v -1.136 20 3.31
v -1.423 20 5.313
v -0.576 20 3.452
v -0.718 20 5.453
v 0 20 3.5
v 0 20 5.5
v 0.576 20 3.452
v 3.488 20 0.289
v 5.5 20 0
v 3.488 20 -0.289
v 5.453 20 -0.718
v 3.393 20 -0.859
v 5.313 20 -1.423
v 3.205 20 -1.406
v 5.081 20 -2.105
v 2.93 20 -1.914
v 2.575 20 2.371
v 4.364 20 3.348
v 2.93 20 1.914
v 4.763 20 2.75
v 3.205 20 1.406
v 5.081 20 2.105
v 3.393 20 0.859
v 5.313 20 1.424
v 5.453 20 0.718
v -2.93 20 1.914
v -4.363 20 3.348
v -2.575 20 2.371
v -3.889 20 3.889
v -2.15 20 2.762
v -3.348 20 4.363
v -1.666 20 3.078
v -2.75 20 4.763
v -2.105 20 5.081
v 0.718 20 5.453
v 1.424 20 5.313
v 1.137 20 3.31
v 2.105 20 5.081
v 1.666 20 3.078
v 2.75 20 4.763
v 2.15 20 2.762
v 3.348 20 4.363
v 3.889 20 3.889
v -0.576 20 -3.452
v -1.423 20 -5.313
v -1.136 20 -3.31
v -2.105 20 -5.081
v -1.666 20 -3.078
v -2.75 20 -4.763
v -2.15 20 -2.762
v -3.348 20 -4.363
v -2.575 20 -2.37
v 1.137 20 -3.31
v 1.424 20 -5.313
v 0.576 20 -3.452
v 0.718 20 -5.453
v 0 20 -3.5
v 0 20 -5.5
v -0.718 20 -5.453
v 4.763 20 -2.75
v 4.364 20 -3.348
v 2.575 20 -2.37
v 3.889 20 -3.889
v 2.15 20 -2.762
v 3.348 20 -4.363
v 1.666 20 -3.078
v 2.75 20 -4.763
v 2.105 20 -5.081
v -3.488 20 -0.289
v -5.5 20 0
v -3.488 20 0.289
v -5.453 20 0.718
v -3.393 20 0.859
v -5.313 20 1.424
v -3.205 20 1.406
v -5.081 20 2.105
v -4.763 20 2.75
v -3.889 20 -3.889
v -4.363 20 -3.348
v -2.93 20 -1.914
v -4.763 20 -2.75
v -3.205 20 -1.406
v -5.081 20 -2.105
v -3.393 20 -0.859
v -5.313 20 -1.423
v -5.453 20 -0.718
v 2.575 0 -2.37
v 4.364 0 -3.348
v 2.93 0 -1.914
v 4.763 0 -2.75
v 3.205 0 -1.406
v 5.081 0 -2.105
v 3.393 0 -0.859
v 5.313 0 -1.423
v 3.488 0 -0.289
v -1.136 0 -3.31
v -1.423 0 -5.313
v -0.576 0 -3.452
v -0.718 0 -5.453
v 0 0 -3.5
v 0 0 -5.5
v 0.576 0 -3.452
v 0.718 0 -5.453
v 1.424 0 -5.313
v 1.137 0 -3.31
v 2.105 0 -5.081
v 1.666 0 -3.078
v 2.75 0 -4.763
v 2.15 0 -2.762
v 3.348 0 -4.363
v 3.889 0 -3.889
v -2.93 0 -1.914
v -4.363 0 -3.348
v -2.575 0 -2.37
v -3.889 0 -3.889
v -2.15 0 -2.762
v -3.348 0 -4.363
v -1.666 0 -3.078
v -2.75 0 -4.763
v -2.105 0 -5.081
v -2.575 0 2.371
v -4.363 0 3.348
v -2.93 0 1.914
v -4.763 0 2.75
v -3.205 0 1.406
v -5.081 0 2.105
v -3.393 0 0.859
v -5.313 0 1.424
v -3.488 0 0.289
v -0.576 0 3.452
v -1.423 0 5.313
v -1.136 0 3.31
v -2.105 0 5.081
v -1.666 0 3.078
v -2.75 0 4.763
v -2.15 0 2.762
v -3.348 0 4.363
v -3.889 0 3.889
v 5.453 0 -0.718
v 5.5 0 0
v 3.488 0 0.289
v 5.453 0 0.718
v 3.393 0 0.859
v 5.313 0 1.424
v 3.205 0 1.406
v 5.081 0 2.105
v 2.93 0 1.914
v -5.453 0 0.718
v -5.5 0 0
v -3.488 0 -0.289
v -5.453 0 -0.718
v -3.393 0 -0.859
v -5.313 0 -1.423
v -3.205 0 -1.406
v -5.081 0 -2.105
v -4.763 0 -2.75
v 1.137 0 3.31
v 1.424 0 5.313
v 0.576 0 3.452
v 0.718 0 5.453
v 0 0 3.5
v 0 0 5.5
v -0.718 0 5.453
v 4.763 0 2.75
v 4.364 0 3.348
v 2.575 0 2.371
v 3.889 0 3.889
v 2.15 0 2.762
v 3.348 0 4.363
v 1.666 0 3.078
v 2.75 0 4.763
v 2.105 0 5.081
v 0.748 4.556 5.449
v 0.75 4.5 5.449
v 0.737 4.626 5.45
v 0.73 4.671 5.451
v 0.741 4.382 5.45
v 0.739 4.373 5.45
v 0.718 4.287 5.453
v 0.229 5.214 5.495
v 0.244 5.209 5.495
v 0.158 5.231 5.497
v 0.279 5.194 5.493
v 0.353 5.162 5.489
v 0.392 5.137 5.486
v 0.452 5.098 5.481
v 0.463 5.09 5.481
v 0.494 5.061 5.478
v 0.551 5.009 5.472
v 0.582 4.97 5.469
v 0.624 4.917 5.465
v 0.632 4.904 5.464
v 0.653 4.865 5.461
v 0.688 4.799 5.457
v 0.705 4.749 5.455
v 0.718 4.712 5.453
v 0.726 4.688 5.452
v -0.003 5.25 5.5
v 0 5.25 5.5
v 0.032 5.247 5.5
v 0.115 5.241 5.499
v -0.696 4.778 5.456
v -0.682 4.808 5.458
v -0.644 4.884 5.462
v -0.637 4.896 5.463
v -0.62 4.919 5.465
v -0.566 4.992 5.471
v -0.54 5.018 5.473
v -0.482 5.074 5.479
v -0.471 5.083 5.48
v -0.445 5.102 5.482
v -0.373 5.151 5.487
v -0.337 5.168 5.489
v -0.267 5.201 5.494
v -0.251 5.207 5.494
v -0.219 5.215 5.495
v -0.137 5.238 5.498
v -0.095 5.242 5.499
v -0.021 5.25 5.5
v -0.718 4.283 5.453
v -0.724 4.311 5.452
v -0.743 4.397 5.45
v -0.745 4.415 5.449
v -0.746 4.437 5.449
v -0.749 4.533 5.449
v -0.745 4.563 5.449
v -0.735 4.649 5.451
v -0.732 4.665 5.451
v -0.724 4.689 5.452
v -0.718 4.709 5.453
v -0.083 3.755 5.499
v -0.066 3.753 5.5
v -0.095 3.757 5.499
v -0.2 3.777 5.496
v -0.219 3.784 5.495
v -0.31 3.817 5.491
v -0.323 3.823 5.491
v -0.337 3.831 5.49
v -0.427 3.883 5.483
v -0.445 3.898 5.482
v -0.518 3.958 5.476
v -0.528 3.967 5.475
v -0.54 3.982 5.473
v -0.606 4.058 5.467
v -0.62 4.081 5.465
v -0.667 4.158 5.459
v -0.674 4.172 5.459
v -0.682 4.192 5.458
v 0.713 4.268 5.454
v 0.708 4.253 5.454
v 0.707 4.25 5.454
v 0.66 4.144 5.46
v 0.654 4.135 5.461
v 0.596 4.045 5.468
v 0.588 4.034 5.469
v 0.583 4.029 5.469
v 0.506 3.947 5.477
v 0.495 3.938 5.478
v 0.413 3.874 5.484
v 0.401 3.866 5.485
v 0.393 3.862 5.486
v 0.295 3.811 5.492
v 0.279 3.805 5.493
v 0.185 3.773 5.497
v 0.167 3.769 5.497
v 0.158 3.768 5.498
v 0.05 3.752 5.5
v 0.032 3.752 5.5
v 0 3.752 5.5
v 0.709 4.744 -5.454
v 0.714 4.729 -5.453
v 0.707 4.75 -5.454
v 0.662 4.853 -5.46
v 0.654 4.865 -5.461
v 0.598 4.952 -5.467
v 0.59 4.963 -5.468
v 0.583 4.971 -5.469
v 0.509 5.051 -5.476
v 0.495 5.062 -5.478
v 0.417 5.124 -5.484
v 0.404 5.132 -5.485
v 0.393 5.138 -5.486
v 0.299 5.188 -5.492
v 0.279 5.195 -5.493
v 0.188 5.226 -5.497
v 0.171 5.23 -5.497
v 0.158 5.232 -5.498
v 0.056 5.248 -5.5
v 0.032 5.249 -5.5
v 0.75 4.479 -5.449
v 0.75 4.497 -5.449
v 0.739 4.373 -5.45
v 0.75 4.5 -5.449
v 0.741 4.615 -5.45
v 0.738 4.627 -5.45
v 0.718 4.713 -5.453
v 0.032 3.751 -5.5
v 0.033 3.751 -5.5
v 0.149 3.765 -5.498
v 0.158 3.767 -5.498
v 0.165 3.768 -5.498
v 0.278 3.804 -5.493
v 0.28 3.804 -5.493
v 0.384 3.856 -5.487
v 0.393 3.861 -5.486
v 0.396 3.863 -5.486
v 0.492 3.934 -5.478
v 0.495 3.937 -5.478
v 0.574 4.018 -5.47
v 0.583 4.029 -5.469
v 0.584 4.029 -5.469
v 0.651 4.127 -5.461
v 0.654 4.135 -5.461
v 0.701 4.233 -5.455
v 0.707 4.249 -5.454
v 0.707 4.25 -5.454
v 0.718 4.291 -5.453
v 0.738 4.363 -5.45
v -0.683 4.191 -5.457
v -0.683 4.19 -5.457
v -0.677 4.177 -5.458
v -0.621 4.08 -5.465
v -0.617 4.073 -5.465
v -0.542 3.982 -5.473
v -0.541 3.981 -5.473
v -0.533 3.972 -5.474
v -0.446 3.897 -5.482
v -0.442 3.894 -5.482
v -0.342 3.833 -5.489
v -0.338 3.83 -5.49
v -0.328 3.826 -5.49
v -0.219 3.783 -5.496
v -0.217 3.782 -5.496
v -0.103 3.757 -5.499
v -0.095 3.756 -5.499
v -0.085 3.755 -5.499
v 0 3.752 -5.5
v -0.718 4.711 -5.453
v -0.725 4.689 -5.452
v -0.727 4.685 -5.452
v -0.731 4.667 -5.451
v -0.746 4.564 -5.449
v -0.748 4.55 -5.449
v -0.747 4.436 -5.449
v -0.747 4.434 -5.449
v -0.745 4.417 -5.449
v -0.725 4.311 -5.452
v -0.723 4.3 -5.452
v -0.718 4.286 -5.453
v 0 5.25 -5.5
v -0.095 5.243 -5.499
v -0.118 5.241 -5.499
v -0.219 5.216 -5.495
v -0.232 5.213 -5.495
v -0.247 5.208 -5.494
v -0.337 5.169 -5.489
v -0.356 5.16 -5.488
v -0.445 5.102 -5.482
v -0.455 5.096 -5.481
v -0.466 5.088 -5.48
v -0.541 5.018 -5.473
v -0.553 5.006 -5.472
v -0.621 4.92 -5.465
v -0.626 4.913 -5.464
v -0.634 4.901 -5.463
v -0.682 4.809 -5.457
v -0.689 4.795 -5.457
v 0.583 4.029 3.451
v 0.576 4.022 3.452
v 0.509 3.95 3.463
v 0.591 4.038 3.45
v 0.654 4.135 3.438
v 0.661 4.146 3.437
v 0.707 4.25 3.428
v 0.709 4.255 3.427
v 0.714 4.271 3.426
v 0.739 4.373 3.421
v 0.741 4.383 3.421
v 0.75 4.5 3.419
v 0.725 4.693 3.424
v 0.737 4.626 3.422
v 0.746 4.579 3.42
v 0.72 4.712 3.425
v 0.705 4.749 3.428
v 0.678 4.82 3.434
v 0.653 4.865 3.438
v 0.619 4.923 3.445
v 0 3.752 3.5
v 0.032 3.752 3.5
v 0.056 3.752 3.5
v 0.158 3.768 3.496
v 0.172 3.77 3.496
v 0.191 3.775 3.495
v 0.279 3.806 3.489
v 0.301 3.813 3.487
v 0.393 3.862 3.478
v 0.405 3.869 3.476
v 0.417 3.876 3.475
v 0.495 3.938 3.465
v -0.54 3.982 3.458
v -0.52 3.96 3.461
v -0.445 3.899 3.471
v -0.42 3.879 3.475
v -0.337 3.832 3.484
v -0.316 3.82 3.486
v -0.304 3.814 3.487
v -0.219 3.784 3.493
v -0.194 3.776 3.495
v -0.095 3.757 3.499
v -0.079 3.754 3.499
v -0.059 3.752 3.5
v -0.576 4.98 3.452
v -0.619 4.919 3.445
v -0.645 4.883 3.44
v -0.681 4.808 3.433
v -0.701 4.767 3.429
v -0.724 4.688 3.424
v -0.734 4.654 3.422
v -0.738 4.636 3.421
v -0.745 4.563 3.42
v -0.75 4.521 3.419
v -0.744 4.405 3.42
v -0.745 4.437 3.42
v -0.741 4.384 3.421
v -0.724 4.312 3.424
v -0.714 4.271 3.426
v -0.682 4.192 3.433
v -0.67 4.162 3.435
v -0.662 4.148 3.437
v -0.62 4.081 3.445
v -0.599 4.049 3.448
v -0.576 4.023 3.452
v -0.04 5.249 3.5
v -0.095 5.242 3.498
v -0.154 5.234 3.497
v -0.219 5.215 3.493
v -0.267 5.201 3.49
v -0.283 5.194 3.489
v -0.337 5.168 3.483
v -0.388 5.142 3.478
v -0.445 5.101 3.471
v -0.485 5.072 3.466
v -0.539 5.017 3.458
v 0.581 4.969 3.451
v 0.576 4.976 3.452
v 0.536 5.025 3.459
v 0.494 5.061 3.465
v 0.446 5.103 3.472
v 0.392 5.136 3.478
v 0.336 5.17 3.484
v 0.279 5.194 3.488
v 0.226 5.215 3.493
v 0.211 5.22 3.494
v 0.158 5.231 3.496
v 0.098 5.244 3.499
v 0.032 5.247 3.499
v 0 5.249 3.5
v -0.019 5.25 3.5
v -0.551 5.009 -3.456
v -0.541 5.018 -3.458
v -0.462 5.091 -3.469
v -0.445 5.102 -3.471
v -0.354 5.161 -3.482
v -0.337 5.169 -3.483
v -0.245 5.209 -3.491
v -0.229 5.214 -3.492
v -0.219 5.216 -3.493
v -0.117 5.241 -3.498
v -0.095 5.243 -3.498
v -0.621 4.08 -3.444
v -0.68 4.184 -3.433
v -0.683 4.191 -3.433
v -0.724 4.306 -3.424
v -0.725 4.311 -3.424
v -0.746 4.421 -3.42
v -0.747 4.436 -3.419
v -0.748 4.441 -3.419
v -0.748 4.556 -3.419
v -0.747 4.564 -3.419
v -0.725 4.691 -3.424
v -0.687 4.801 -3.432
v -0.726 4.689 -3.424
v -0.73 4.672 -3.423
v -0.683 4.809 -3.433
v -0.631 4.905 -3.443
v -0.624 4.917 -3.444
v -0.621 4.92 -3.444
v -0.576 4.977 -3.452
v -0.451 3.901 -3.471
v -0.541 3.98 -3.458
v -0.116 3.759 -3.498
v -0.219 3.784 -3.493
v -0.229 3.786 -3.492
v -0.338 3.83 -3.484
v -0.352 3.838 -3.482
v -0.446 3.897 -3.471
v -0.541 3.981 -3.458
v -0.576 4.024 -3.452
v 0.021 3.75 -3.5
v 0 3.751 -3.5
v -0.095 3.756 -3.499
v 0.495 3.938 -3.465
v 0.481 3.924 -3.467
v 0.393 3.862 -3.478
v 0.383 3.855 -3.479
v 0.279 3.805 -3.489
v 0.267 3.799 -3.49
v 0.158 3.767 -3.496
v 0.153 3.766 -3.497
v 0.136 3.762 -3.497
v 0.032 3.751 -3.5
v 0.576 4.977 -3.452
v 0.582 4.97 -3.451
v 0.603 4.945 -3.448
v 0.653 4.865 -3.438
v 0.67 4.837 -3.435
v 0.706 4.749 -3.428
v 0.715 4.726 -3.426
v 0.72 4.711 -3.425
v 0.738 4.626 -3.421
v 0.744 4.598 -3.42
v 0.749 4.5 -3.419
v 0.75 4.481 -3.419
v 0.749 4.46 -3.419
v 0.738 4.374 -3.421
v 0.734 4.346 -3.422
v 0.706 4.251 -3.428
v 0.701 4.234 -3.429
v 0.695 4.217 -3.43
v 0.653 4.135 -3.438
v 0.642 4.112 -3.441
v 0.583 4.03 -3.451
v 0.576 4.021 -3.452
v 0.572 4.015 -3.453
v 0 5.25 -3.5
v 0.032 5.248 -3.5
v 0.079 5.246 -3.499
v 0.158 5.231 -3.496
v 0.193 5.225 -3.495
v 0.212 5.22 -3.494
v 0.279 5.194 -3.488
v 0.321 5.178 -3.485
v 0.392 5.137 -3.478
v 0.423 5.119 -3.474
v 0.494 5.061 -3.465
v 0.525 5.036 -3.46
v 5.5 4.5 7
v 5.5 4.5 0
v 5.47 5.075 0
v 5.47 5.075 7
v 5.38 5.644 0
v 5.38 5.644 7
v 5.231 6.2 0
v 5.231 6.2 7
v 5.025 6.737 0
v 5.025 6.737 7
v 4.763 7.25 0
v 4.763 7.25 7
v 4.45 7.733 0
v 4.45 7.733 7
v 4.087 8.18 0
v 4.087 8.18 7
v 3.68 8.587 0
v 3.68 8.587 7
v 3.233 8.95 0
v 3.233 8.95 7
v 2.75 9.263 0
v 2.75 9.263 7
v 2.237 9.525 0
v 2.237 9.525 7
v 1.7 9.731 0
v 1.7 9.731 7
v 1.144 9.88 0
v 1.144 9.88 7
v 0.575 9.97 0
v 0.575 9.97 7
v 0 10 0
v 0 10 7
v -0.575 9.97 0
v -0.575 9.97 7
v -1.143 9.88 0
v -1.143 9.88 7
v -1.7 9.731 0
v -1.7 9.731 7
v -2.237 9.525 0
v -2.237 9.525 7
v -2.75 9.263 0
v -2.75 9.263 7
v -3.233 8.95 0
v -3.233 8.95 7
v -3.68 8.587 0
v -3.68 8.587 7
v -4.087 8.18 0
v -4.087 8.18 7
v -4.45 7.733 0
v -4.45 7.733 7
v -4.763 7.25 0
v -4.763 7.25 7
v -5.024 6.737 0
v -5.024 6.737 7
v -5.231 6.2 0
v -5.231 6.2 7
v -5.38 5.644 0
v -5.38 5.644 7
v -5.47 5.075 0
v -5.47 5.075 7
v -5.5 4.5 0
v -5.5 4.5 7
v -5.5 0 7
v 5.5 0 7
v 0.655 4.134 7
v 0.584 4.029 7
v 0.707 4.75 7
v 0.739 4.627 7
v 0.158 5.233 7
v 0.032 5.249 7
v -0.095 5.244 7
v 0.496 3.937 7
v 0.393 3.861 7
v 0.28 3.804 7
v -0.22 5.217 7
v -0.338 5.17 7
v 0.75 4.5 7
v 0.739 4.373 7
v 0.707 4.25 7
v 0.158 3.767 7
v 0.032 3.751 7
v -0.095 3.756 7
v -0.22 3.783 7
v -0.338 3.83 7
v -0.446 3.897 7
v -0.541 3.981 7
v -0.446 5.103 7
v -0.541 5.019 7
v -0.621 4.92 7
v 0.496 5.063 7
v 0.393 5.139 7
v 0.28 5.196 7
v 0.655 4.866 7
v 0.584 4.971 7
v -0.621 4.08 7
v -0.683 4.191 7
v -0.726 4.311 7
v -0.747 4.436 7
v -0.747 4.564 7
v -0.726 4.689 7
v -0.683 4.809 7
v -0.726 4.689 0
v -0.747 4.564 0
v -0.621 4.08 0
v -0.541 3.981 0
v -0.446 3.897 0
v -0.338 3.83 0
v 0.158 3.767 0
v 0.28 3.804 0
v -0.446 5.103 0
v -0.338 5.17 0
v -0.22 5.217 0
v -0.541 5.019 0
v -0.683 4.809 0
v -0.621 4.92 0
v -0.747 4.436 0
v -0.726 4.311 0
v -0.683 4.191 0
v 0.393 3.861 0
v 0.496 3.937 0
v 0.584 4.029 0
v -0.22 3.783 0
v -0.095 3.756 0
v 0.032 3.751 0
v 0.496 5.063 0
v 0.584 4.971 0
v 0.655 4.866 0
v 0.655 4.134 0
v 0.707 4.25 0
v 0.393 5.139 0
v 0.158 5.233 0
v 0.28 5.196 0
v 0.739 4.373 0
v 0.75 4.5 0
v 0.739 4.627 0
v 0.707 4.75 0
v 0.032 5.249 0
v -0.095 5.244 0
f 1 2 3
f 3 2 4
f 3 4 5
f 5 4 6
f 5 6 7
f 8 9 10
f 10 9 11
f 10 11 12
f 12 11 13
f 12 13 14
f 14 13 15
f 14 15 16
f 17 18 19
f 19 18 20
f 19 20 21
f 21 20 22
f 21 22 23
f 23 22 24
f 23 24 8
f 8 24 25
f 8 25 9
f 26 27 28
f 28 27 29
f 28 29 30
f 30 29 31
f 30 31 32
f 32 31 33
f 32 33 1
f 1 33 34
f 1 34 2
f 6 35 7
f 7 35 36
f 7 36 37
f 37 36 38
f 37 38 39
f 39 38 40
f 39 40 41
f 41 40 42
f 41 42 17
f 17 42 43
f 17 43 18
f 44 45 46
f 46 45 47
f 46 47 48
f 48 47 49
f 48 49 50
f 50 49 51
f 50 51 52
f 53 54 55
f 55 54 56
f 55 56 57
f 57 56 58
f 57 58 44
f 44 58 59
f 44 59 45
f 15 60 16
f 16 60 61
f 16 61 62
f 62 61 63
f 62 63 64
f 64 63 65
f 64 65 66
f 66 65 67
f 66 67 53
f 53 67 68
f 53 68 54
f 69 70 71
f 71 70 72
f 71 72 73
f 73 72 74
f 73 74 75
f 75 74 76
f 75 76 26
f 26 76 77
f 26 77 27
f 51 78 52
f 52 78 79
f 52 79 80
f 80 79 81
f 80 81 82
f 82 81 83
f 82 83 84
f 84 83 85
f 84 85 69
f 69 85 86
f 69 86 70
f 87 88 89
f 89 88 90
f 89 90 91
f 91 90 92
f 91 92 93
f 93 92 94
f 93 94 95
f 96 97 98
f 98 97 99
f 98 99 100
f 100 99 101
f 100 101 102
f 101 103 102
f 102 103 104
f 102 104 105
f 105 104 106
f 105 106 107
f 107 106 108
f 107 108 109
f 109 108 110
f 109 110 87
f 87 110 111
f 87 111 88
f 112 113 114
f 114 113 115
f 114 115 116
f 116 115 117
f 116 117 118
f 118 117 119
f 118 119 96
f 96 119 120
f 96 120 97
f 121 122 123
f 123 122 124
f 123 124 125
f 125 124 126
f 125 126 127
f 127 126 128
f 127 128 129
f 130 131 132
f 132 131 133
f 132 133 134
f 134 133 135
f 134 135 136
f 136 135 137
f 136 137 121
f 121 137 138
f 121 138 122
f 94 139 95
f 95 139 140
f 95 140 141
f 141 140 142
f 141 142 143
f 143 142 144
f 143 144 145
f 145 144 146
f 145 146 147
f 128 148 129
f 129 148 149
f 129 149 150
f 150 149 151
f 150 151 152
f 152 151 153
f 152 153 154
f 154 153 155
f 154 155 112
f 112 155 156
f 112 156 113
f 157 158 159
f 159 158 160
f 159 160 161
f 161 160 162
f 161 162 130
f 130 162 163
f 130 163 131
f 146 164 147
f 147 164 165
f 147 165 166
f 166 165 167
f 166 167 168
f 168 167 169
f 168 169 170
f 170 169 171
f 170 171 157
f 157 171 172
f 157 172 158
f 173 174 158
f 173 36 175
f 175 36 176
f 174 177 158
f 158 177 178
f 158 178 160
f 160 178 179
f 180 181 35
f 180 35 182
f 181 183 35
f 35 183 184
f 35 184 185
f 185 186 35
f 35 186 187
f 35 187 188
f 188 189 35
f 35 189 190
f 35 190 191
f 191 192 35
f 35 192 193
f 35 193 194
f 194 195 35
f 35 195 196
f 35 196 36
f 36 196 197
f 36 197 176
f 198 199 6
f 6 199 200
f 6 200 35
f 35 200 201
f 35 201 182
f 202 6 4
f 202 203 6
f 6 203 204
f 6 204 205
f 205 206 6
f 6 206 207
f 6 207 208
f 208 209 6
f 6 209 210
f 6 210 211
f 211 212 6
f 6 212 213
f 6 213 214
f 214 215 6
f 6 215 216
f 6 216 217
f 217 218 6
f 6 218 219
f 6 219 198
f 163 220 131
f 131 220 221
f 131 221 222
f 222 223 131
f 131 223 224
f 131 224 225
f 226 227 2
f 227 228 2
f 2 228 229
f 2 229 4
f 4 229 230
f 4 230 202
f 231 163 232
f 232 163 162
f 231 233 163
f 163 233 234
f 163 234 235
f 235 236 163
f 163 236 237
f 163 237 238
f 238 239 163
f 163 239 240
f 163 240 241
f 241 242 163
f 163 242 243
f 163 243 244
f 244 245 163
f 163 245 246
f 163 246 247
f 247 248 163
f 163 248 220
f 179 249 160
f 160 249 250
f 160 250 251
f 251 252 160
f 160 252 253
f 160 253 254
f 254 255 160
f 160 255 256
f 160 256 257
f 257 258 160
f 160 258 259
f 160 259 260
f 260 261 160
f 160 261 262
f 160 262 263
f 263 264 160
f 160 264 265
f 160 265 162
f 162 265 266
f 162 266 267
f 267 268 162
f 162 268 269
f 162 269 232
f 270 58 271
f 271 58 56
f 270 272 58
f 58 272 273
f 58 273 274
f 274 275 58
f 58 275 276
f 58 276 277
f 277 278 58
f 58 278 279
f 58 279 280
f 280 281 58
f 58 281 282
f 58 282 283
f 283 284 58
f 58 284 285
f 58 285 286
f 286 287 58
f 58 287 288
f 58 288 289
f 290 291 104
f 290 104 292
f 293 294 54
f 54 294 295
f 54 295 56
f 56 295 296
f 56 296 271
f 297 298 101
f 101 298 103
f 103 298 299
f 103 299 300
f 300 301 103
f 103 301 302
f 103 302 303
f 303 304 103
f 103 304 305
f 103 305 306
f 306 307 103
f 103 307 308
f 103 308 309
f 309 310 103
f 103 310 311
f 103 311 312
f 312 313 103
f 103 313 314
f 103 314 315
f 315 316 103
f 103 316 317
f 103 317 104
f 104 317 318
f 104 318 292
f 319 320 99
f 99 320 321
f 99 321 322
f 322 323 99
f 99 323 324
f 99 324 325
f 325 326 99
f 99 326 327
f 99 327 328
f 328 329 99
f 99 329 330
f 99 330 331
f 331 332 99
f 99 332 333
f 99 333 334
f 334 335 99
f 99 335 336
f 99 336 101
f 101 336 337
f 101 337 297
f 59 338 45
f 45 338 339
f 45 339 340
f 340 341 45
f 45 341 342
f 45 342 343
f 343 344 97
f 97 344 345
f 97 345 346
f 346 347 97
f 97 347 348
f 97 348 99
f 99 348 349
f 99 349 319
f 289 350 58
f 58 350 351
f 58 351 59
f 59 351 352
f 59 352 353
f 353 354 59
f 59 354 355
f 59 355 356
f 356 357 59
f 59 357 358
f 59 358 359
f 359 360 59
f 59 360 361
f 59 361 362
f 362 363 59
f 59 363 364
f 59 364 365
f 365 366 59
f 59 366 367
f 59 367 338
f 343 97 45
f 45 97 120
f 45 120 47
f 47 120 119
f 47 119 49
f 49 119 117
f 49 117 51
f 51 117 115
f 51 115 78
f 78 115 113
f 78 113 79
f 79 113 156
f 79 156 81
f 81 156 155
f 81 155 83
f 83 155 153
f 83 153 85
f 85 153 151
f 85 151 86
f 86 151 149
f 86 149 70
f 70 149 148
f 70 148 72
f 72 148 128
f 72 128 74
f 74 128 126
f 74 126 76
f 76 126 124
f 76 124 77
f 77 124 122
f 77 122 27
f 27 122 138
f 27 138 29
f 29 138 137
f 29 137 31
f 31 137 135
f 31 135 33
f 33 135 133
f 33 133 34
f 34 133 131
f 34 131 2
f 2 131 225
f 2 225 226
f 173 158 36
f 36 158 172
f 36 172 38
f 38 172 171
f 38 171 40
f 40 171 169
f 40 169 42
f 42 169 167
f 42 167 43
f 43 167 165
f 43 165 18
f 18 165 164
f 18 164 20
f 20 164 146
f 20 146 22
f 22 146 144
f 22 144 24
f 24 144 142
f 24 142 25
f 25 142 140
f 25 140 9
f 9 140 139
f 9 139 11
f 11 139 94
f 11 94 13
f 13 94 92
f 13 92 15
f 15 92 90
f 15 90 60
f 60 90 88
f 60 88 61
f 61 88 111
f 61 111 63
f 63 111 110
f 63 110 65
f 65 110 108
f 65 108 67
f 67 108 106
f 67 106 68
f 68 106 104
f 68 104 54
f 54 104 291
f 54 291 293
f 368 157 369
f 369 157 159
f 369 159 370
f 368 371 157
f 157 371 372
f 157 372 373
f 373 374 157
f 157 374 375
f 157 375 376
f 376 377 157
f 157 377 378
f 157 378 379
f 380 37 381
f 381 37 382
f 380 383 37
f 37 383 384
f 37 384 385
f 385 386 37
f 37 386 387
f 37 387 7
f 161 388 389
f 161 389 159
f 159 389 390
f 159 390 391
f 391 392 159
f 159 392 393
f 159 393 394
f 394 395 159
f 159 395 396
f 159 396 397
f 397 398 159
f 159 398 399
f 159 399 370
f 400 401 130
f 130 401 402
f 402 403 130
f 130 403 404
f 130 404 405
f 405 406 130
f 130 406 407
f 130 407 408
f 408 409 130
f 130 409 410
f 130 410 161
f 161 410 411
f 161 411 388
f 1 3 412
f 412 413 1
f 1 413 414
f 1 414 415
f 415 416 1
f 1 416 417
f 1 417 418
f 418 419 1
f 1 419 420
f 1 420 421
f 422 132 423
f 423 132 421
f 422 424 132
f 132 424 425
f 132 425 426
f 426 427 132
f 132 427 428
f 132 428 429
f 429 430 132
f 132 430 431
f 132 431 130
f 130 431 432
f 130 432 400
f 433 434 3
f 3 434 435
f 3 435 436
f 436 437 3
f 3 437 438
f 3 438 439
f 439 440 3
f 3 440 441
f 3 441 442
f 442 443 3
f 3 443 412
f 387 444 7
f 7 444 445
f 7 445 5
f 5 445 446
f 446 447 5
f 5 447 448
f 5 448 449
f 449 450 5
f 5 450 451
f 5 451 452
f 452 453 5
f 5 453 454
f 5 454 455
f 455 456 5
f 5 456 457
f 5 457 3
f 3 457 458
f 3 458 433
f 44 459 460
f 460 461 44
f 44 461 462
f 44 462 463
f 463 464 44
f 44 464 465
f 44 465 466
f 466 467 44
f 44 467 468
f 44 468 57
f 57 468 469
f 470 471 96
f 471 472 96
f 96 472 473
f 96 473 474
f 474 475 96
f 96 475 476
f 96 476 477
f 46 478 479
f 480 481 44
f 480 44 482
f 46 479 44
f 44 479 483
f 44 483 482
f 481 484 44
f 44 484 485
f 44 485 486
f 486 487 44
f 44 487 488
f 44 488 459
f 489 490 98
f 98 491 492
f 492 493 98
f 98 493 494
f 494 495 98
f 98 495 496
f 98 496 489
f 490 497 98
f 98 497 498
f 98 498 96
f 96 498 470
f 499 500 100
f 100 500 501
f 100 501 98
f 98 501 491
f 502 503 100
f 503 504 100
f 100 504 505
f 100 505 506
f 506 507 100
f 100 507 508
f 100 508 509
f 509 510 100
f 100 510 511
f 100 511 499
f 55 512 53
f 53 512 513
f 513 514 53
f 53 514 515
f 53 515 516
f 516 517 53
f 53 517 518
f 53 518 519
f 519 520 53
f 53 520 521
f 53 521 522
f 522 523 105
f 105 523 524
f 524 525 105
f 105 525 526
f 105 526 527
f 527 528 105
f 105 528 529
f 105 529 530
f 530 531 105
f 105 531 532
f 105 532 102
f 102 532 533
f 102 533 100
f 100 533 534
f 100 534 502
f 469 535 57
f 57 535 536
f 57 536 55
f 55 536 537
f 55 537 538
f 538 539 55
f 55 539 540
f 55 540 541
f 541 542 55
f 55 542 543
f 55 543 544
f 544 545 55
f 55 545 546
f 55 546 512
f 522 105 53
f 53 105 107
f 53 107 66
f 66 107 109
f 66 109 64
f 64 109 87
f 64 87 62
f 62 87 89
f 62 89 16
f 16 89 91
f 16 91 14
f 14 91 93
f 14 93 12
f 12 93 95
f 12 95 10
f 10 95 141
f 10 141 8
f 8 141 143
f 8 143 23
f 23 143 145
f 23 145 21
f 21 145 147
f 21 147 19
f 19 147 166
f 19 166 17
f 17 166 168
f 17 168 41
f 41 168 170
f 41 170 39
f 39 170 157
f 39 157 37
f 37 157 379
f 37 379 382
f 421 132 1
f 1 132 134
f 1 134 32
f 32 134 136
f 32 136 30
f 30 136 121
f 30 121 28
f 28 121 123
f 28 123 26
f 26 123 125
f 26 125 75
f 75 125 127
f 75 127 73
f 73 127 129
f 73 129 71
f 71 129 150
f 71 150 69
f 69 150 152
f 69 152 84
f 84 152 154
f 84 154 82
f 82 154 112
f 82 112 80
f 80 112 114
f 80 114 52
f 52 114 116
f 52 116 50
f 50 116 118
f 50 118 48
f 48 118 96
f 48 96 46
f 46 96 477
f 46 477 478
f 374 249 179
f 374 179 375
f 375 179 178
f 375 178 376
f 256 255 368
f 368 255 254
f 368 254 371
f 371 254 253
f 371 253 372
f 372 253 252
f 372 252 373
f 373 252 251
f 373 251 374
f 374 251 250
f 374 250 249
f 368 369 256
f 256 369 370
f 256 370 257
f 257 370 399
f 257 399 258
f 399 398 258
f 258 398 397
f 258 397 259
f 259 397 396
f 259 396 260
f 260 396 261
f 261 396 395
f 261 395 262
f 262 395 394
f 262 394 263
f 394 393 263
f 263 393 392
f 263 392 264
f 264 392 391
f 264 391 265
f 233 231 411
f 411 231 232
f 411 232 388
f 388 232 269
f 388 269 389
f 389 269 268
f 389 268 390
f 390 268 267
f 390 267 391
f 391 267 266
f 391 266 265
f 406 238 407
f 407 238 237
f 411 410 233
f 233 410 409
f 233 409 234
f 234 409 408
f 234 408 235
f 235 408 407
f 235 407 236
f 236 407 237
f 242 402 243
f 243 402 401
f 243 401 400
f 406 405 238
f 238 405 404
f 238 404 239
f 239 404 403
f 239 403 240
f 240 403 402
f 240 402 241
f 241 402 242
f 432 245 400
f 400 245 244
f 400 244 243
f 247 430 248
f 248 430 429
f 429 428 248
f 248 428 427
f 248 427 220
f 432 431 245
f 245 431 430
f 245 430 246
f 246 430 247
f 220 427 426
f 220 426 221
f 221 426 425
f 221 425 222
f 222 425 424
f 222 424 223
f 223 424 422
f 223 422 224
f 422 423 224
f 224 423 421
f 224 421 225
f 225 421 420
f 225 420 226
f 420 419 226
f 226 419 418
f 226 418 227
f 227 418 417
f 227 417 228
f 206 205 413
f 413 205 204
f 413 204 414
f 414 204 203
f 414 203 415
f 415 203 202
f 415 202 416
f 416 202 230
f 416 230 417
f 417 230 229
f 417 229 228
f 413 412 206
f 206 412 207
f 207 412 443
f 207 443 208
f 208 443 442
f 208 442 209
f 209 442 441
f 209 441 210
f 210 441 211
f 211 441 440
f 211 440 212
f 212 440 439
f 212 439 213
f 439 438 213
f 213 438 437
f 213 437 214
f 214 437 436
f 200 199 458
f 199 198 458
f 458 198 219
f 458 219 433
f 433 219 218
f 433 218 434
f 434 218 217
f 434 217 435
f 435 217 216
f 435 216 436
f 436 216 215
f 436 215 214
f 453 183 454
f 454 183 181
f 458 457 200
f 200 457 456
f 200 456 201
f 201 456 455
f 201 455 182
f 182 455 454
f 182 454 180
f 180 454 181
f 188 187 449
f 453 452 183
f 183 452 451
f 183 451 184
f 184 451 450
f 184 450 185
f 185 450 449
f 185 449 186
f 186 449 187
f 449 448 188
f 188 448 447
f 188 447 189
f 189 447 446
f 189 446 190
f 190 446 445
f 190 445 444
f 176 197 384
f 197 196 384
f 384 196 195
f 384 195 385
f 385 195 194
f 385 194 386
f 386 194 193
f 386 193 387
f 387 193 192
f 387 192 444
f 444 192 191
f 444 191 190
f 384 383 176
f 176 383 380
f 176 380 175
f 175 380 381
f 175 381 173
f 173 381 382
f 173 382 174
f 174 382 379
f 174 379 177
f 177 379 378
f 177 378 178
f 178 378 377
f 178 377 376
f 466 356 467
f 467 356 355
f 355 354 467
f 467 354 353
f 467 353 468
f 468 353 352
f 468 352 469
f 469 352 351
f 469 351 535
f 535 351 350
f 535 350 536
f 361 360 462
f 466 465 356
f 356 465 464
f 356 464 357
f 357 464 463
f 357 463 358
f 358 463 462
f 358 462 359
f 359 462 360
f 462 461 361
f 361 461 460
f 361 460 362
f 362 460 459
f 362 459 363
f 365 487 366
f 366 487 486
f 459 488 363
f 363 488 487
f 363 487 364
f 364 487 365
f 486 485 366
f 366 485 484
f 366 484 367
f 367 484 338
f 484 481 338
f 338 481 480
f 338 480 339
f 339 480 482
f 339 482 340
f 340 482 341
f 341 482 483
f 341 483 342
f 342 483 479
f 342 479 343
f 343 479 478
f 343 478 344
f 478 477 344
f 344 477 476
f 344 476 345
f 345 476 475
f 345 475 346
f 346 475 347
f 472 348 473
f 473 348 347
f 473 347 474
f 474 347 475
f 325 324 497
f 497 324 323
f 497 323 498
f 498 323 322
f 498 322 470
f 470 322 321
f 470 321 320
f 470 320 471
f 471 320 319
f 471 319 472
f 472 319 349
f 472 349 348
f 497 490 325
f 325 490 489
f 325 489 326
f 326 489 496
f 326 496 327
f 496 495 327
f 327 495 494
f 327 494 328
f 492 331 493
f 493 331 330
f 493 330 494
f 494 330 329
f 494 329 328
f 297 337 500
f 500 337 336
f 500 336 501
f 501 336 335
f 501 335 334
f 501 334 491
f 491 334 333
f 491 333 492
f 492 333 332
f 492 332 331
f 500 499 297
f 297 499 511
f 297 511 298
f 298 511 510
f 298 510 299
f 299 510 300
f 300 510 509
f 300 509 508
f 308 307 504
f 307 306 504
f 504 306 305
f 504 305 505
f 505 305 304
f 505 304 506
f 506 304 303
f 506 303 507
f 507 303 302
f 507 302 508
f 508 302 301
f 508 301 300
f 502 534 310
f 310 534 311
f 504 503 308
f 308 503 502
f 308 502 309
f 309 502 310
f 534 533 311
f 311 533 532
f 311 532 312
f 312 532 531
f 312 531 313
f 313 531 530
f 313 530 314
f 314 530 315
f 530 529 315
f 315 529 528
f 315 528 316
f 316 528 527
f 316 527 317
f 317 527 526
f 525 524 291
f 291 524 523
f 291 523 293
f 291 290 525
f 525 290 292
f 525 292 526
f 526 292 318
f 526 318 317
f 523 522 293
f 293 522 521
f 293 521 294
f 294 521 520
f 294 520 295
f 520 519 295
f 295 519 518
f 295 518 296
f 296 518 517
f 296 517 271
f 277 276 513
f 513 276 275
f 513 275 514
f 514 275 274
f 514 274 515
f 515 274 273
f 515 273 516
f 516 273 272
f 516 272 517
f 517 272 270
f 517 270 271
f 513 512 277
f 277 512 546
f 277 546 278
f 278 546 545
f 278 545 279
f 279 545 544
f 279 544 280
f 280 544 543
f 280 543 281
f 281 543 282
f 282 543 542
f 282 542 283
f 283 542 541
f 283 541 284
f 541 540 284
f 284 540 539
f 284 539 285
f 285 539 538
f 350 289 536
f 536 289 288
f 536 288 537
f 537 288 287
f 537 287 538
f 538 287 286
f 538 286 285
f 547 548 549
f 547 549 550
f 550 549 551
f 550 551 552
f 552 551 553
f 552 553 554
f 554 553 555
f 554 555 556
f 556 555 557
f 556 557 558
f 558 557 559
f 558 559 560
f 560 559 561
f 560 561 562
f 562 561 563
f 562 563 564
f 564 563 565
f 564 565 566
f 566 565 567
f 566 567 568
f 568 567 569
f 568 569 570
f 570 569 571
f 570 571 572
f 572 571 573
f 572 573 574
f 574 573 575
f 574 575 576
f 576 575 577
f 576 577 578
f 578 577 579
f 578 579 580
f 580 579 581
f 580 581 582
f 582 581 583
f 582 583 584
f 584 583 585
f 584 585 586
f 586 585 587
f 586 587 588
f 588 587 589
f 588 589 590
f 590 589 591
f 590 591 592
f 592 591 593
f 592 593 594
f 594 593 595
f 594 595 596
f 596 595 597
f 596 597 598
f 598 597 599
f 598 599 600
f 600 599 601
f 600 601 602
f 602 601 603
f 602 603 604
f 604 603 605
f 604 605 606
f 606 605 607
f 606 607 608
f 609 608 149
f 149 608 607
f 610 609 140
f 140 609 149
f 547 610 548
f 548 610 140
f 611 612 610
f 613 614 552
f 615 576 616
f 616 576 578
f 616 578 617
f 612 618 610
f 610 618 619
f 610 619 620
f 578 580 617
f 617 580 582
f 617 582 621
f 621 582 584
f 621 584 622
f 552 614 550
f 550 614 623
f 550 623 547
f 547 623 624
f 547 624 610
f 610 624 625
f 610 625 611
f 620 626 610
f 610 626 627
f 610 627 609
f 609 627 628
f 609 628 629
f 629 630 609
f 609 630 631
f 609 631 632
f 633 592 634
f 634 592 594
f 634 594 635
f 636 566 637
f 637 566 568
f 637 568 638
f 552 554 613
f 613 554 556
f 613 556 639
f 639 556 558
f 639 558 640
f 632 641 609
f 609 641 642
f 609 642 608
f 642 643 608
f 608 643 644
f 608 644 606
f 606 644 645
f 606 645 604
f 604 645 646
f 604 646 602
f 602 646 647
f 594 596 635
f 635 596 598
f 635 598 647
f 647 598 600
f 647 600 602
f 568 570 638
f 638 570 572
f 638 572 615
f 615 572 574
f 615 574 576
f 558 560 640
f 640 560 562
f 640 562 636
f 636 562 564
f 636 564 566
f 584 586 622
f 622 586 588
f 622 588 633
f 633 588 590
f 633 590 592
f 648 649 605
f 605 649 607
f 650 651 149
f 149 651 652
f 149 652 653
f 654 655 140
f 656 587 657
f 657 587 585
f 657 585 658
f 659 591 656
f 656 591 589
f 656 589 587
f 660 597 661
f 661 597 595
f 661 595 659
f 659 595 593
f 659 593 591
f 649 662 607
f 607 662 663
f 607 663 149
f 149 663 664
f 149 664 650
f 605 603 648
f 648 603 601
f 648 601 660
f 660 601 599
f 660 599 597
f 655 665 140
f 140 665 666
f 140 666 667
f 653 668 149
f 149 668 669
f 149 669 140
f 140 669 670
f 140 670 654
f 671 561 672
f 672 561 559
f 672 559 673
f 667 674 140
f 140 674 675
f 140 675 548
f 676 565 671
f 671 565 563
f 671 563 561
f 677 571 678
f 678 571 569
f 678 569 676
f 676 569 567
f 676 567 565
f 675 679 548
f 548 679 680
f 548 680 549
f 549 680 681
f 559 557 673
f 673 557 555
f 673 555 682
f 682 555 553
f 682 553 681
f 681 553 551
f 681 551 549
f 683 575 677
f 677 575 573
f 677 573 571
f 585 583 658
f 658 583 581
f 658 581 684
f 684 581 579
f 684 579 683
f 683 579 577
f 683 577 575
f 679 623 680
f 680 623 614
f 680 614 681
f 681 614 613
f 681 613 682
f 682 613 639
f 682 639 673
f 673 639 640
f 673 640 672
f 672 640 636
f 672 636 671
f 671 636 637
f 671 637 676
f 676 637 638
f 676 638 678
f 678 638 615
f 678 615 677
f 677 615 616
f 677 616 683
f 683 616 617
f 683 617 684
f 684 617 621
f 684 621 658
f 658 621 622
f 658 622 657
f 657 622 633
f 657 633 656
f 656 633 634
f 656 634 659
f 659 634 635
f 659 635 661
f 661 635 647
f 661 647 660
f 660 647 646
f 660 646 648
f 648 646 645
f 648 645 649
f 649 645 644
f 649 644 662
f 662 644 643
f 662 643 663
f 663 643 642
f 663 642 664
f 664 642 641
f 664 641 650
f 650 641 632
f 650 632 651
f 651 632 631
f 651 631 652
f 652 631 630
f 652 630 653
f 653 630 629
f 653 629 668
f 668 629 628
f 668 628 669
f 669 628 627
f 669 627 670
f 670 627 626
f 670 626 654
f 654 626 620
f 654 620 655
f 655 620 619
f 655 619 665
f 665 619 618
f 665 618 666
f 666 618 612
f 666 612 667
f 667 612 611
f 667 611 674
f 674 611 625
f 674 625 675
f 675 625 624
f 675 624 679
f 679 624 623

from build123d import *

# Parameters (mm, degrees)
SKETCH1_R           = 5.5
SKETCH1_R_2         = 3.5
BOSS_EXTRUDE1_DEPTH = 20
BOSS_EXTRUDE2_DEPTH = 7
SKETCH3_R           = 0.75
CUT_EXTRUDE1_DEPTH  = 30


with BuildPart() as part:
    # Sketch1 → Boss-Extrude1 (new body)
    with BuildSketch(Plane(origin=(0, 0, 0), x_dir=(1, 0, 0), z_dir=(0, 1, 0))):
        with Locations(Location((0, 0, 0), (0, 0, 270))):
            Circle(SKETCH1_R)
        with Locations(Location((0, 0, 0), (0, 0, 270))):
            Circle(SKETCH1_R_2, mode=Mode.SUBTRACT)
    extrude(amount=BOSS_EXTRUDE1_DEPTH)


with BuildPart() as body_2:
    # Sketch2 → Boss-Extrude2 (new body)
    with BuildSketch(Plane.XY):
        with BuildLine():
            ThreePointArc((0, 10), (-3.8890873, 8.389087293), (-5.5, 4.49999999))
            ThreePointArc((-5.5, 4.49999999), (-4.880703181, 1.964504692), (-3.16227766, 0))
            Line((-3.16227766, 0), (3.16227766, 0))
            ThreePointArc((3.16227766, 0), (4.880703184, 1.964504696), (5.5, 4.5))
            ThreePointArc((5.5, 4.5), (3.889087297, 8.389087297), (0, 10))
        make_face()
        with BuildLine():
            Line((-5.5, 4.49999999), (-5.5, 0))
            Line((-5.5, 0), (-3.16227766, 0))
            ThreePointArc((-3.16227766, 0), (-4.880703181, 1.964504692), (-5.5, 4.49999999))
        make_face()
        with BuildLine():
            Line((3.16227766, 0), (5.5, 0))
            Line((5.5, 0), (5.5, 4.5))
            ThreePointArc((5.5, 4.5), (4.880703184, 1.964504696), (3.16227766, 0))
        make_face()
    extrude(amount=BOSS_EXTRUDE2_DEPTH)


with BuildPart() as cut_extrude1_tool:
    # Sketch3 → Cut-Extrude1 (new body)
    with BuildSketch(Plane.XY.offset(7)):
        with Locations((0, 4.5)):
            Circle(SKETCH3_R)
    extrude(amount=-CUT_EXTRUDE1_DEPTH)


with BuildPart() as part_1:
    add(part.part)

    # Cut-Extrude1: cut by cut_extrude1_tool
    add(cut_extrude1_tool.part, mode=Mode.SUBTRACT)


with BuildPart() as body_2_1:
    add(body_2.part)

    # Cut-Extrude1: cut by cut_extrude1_tool
    add(cut_extrude1_tool.part, mode=Mode.SUBTRACT)


solid = Compound([part_1.part, body_2_1.part])
